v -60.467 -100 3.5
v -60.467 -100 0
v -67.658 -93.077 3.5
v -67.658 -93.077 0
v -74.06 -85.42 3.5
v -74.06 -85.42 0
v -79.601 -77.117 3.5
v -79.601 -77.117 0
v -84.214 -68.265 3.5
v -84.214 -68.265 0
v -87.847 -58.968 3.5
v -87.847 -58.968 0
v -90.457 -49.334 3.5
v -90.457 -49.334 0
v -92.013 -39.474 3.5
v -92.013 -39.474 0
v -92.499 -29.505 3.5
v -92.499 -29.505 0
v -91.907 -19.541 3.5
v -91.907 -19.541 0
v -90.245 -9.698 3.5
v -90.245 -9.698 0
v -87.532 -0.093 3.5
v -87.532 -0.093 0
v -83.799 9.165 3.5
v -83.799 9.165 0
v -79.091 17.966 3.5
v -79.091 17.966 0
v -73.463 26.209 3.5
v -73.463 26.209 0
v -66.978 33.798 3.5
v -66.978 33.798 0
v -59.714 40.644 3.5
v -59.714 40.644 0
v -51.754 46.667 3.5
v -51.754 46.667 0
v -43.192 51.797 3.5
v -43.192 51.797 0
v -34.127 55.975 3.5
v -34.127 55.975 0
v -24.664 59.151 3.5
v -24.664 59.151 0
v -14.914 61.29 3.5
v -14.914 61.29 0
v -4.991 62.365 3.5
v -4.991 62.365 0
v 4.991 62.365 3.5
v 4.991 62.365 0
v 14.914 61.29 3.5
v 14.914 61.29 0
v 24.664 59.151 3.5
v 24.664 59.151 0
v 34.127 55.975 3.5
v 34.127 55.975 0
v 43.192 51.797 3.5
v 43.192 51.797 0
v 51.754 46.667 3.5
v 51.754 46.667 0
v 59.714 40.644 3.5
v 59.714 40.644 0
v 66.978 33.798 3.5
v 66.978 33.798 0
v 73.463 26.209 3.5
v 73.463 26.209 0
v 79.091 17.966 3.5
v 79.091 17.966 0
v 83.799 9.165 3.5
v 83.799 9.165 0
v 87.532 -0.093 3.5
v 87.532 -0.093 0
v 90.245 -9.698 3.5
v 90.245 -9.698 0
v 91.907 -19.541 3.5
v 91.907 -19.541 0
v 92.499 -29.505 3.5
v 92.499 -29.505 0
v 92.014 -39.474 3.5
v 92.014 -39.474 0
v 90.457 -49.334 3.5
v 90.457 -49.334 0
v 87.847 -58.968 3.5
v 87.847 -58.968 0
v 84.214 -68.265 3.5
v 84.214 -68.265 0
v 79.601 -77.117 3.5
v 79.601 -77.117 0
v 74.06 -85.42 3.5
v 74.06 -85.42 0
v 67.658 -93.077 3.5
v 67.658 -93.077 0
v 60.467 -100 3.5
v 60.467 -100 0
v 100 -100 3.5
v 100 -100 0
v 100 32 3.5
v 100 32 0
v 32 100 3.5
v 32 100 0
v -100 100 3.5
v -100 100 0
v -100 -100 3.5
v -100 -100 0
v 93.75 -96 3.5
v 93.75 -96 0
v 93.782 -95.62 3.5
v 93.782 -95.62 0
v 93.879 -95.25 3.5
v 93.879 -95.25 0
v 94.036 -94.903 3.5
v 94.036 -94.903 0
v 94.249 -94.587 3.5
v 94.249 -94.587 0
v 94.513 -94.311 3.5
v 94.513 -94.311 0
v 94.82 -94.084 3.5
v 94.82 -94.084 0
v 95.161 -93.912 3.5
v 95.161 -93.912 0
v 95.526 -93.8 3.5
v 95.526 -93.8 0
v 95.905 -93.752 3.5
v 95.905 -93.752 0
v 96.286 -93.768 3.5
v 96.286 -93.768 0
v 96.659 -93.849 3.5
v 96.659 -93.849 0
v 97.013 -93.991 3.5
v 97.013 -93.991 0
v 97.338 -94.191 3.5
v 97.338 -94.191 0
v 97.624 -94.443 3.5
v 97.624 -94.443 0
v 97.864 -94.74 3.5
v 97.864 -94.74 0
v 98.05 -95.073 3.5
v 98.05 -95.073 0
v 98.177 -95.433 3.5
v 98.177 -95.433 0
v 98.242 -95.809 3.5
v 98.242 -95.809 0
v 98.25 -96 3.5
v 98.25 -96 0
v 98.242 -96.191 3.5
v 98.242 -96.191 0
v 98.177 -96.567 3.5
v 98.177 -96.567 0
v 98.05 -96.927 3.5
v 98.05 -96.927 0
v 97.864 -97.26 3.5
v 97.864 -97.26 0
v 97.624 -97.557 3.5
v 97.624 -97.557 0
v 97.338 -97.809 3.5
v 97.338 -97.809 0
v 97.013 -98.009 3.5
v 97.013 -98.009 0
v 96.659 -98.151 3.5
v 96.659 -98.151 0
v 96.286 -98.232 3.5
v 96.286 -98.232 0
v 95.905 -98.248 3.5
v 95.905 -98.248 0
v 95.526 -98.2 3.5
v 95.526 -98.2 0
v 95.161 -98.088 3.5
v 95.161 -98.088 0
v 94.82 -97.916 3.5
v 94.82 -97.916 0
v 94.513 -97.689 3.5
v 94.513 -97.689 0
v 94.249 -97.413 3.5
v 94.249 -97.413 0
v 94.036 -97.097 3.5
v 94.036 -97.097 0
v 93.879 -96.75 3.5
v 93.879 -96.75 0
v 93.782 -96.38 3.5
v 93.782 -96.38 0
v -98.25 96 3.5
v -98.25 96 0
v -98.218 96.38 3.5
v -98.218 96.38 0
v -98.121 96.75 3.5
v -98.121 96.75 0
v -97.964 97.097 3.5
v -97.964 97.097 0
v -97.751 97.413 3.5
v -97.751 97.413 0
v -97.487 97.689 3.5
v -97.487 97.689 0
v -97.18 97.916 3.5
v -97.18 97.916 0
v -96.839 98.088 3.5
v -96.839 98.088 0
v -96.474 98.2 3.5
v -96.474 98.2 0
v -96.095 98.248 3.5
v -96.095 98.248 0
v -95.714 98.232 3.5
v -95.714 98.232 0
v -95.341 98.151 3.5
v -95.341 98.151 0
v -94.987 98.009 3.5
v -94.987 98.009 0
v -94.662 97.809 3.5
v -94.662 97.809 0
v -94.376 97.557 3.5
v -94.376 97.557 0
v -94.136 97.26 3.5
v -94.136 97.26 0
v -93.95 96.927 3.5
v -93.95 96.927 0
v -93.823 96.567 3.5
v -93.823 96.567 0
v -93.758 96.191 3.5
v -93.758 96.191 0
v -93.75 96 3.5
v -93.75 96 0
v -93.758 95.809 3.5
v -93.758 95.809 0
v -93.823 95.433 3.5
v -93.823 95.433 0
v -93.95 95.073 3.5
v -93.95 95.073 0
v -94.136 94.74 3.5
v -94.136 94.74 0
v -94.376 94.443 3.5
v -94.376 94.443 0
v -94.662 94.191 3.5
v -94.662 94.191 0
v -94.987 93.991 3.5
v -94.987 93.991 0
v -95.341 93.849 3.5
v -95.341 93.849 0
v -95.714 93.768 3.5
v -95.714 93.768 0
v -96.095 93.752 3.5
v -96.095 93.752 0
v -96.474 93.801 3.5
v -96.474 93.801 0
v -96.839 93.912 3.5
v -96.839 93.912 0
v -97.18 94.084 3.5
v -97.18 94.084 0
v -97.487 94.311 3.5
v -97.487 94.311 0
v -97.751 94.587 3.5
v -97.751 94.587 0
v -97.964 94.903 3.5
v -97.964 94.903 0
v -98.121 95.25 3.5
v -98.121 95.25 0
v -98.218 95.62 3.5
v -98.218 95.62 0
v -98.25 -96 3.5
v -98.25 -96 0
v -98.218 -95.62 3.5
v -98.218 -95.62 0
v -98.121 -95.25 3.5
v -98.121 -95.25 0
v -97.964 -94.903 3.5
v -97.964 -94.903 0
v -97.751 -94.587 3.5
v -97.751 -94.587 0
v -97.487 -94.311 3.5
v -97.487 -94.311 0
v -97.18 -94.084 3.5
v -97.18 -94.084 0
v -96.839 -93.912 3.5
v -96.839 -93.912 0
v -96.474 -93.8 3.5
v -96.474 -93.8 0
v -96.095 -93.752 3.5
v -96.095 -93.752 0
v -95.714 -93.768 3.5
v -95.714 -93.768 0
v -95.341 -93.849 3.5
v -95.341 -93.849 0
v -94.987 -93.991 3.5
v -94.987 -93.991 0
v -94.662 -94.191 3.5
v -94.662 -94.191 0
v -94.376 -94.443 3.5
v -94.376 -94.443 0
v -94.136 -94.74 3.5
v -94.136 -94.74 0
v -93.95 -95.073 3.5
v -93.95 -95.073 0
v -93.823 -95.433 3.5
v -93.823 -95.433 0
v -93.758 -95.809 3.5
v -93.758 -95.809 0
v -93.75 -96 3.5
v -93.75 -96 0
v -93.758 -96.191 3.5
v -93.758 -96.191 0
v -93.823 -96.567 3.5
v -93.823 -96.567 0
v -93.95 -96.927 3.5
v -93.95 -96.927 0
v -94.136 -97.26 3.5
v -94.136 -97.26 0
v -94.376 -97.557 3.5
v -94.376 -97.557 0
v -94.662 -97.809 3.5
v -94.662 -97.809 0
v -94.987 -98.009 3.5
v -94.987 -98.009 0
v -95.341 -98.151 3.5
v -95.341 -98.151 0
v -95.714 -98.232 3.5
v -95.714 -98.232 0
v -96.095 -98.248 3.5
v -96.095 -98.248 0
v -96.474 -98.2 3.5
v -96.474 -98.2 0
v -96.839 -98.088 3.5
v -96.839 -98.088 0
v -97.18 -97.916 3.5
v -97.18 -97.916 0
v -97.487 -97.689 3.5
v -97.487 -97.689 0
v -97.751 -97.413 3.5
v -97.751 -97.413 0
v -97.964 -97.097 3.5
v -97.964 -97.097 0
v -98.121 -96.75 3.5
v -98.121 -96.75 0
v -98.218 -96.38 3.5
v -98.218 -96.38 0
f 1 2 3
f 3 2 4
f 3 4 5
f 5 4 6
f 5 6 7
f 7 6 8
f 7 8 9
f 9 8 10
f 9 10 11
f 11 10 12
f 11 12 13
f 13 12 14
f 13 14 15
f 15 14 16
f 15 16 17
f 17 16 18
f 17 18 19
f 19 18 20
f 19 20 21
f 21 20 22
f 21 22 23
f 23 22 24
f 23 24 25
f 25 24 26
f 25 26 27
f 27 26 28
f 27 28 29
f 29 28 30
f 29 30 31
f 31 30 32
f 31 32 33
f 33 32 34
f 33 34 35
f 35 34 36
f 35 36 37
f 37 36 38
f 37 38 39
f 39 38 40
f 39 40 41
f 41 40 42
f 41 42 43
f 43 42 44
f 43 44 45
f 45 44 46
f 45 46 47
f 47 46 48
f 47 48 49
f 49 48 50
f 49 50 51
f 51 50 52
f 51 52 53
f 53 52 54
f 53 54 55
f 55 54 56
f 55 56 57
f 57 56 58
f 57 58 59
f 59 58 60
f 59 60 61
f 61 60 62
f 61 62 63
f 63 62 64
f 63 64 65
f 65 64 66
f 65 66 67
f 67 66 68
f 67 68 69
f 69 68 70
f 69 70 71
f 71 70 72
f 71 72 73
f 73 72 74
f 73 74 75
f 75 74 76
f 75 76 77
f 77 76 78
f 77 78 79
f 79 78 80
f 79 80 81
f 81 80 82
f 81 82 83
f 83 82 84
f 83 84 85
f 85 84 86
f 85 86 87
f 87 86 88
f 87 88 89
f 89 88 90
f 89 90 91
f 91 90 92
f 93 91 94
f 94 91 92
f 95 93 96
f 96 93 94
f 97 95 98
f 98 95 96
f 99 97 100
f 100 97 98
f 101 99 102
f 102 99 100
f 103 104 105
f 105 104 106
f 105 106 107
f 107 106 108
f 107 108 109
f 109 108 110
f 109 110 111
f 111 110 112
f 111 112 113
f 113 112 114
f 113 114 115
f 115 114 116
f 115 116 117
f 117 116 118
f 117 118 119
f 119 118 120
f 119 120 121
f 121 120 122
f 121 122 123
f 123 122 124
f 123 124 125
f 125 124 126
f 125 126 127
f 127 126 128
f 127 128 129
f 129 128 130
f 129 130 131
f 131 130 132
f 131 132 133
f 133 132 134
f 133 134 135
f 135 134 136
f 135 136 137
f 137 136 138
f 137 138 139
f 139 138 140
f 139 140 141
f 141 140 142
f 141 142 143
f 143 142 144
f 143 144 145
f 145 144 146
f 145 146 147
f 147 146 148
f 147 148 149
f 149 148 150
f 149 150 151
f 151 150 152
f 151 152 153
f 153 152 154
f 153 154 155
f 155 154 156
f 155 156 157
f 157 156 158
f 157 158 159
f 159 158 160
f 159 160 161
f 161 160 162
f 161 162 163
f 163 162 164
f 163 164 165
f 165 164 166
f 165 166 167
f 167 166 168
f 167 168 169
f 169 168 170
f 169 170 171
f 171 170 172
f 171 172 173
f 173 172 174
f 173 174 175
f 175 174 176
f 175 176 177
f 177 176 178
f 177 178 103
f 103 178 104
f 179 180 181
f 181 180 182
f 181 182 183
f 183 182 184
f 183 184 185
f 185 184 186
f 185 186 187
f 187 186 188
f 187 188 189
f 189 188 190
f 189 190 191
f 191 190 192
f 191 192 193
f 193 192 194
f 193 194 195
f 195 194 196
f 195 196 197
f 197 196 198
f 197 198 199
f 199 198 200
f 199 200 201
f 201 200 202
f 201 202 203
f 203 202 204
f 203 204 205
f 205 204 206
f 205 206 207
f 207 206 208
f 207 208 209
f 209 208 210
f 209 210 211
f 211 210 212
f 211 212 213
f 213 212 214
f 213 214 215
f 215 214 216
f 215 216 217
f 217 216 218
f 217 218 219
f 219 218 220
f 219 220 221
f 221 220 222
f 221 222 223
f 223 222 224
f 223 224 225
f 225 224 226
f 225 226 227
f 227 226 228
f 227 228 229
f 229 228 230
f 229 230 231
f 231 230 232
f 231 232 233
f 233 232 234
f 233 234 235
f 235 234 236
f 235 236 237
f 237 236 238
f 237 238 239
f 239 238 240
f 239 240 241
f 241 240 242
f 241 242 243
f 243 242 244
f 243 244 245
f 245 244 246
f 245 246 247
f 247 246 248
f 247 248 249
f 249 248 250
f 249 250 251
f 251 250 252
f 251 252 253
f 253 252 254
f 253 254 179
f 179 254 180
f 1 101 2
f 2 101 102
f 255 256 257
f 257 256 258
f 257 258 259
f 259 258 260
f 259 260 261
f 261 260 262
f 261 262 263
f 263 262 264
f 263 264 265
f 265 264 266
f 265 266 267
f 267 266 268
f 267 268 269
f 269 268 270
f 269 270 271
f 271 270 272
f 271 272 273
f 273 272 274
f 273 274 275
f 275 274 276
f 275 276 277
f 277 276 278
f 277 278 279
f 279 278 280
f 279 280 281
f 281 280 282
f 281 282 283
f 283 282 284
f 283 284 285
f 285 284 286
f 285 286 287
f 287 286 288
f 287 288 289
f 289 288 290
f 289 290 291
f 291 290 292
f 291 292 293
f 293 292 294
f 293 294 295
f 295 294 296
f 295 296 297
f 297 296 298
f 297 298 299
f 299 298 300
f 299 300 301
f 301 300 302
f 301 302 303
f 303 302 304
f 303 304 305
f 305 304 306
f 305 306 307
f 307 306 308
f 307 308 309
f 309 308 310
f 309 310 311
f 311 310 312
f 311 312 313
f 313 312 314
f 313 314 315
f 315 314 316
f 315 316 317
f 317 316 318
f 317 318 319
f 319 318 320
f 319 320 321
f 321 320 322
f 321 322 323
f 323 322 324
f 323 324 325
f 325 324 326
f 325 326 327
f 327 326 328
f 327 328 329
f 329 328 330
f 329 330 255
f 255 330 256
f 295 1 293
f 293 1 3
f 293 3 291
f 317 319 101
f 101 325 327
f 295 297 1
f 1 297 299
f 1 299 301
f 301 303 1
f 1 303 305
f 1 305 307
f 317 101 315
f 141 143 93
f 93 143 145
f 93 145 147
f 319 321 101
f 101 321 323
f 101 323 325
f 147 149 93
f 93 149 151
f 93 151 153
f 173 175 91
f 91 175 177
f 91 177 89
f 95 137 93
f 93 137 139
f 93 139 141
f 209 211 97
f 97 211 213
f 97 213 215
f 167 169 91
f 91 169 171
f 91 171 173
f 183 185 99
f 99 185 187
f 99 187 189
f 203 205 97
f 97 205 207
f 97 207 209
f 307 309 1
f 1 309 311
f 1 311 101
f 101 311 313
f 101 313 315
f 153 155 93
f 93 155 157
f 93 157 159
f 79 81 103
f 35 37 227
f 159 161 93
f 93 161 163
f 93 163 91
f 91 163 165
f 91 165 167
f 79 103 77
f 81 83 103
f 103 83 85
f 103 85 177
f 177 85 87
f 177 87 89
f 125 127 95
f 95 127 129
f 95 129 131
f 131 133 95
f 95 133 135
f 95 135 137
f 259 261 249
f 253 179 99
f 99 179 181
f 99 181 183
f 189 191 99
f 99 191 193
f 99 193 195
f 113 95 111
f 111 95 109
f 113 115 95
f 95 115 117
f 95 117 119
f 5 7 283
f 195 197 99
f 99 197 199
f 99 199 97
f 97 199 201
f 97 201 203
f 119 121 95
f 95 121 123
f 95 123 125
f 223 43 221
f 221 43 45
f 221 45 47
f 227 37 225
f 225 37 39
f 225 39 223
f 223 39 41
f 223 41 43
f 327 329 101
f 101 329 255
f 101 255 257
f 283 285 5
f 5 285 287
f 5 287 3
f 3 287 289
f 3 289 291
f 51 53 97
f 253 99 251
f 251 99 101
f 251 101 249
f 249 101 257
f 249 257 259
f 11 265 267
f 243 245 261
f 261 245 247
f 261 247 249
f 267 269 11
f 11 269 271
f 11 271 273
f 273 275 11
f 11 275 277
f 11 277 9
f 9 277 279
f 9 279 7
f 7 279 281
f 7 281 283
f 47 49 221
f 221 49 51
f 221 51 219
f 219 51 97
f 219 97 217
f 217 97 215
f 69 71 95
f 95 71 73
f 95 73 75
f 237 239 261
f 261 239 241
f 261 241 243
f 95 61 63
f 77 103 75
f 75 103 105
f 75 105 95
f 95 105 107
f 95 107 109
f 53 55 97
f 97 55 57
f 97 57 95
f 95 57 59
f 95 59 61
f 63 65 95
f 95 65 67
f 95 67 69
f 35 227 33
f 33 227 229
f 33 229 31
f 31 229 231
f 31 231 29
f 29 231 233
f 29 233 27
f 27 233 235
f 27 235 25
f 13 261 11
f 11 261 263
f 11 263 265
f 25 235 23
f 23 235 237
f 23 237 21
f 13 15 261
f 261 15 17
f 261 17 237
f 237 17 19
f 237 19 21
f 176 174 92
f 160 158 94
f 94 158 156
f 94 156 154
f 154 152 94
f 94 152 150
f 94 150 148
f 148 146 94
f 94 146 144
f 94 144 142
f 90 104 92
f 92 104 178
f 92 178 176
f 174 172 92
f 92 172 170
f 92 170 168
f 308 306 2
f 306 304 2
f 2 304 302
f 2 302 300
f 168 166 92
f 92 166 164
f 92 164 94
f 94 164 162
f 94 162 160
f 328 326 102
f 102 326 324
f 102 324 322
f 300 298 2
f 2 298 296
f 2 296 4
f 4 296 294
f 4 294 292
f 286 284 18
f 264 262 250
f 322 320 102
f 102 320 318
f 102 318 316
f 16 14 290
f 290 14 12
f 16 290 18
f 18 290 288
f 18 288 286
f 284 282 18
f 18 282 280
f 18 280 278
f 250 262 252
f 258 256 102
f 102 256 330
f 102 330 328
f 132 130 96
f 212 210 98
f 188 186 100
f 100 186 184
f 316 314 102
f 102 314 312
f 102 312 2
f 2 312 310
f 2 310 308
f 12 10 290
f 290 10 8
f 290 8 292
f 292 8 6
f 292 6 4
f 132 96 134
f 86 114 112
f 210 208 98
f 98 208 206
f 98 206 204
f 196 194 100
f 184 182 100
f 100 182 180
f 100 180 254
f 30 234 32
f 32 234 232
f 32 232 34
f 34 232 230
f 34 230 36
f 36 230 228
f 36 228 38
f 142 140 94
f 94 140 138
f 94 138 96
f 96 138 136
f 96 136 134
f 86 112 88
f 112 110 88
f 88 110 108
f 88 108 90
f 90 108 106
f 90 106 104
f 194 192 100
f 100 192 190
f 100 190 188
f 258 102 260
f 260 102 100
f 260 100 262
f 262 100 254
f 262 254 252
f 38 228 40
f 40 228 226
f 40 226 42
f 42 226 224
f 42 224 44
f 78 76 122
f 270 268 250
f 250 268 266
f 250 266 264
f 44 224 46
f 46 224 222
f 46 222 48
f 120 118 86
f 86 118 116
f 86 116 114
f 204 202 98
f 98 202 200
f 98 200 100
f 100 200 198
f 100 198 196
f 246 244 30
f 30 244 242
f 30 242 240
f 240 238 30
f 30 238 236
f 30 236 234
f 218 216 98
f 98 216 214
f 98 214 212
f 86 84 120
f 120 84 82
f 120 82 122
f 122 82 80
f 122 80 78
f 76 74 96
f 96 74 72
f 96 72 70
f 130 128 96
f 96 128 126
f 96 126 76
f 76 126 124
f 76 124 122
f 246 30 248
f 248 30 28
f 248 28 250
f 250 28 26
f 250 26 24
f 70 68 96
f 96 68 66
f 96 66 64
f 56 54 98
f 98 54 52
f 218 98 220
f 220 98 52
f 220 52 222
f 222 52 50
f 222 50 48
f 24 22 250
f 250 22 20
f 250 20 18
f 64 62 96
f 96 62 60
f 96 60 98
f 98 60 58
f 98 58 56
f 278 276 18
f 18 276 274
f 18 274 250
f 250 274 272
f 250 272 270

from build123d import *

# Parameters (mm, degrees)
SKETCH1_R           = 2.25
BOSS_EXTRUDE1_DEPTH = 3.5


with BuildPart() as part:
    # Sketch1 → Boss-Extrude1 (new body)
    with BuildSketch(Plane.XY):
        with BuildLine():
            Line((-100, 100), (-100, -100))
            Line((-100, -100), (-60.466933112, -100))
            ThreePointArc((-60.466933112, -100), (-38.490639688, 54.111358665), (92.5, -30))
            ThreePointArc((92.5, -30), (84.111358665, -68.490639688), (60.466933112, -100))
            Line((60.466933112, -100), (100, -100))
            Line((100, -100), (100, 32))
            Line((100, 32), (32, 100))
            Line((32, 100), (-100, 100))
        make_face()
        with Locations((-96.15, -96.15)):
            Circle(SKETCH1_R, mode=Mode.SUBTRACT)
        with Locations((96.15, -96.15)):
            Circle(SKETCH1_R, mode=Mode.SUBTRACT)
        with Locations((-96.15, 96.15)):
            Circle(SKETCH1_R, mode=Mode.SUBTRACT)
    extrude(amount=BOSS_EXTRUDE1_DEPTH)


solid = part.part
